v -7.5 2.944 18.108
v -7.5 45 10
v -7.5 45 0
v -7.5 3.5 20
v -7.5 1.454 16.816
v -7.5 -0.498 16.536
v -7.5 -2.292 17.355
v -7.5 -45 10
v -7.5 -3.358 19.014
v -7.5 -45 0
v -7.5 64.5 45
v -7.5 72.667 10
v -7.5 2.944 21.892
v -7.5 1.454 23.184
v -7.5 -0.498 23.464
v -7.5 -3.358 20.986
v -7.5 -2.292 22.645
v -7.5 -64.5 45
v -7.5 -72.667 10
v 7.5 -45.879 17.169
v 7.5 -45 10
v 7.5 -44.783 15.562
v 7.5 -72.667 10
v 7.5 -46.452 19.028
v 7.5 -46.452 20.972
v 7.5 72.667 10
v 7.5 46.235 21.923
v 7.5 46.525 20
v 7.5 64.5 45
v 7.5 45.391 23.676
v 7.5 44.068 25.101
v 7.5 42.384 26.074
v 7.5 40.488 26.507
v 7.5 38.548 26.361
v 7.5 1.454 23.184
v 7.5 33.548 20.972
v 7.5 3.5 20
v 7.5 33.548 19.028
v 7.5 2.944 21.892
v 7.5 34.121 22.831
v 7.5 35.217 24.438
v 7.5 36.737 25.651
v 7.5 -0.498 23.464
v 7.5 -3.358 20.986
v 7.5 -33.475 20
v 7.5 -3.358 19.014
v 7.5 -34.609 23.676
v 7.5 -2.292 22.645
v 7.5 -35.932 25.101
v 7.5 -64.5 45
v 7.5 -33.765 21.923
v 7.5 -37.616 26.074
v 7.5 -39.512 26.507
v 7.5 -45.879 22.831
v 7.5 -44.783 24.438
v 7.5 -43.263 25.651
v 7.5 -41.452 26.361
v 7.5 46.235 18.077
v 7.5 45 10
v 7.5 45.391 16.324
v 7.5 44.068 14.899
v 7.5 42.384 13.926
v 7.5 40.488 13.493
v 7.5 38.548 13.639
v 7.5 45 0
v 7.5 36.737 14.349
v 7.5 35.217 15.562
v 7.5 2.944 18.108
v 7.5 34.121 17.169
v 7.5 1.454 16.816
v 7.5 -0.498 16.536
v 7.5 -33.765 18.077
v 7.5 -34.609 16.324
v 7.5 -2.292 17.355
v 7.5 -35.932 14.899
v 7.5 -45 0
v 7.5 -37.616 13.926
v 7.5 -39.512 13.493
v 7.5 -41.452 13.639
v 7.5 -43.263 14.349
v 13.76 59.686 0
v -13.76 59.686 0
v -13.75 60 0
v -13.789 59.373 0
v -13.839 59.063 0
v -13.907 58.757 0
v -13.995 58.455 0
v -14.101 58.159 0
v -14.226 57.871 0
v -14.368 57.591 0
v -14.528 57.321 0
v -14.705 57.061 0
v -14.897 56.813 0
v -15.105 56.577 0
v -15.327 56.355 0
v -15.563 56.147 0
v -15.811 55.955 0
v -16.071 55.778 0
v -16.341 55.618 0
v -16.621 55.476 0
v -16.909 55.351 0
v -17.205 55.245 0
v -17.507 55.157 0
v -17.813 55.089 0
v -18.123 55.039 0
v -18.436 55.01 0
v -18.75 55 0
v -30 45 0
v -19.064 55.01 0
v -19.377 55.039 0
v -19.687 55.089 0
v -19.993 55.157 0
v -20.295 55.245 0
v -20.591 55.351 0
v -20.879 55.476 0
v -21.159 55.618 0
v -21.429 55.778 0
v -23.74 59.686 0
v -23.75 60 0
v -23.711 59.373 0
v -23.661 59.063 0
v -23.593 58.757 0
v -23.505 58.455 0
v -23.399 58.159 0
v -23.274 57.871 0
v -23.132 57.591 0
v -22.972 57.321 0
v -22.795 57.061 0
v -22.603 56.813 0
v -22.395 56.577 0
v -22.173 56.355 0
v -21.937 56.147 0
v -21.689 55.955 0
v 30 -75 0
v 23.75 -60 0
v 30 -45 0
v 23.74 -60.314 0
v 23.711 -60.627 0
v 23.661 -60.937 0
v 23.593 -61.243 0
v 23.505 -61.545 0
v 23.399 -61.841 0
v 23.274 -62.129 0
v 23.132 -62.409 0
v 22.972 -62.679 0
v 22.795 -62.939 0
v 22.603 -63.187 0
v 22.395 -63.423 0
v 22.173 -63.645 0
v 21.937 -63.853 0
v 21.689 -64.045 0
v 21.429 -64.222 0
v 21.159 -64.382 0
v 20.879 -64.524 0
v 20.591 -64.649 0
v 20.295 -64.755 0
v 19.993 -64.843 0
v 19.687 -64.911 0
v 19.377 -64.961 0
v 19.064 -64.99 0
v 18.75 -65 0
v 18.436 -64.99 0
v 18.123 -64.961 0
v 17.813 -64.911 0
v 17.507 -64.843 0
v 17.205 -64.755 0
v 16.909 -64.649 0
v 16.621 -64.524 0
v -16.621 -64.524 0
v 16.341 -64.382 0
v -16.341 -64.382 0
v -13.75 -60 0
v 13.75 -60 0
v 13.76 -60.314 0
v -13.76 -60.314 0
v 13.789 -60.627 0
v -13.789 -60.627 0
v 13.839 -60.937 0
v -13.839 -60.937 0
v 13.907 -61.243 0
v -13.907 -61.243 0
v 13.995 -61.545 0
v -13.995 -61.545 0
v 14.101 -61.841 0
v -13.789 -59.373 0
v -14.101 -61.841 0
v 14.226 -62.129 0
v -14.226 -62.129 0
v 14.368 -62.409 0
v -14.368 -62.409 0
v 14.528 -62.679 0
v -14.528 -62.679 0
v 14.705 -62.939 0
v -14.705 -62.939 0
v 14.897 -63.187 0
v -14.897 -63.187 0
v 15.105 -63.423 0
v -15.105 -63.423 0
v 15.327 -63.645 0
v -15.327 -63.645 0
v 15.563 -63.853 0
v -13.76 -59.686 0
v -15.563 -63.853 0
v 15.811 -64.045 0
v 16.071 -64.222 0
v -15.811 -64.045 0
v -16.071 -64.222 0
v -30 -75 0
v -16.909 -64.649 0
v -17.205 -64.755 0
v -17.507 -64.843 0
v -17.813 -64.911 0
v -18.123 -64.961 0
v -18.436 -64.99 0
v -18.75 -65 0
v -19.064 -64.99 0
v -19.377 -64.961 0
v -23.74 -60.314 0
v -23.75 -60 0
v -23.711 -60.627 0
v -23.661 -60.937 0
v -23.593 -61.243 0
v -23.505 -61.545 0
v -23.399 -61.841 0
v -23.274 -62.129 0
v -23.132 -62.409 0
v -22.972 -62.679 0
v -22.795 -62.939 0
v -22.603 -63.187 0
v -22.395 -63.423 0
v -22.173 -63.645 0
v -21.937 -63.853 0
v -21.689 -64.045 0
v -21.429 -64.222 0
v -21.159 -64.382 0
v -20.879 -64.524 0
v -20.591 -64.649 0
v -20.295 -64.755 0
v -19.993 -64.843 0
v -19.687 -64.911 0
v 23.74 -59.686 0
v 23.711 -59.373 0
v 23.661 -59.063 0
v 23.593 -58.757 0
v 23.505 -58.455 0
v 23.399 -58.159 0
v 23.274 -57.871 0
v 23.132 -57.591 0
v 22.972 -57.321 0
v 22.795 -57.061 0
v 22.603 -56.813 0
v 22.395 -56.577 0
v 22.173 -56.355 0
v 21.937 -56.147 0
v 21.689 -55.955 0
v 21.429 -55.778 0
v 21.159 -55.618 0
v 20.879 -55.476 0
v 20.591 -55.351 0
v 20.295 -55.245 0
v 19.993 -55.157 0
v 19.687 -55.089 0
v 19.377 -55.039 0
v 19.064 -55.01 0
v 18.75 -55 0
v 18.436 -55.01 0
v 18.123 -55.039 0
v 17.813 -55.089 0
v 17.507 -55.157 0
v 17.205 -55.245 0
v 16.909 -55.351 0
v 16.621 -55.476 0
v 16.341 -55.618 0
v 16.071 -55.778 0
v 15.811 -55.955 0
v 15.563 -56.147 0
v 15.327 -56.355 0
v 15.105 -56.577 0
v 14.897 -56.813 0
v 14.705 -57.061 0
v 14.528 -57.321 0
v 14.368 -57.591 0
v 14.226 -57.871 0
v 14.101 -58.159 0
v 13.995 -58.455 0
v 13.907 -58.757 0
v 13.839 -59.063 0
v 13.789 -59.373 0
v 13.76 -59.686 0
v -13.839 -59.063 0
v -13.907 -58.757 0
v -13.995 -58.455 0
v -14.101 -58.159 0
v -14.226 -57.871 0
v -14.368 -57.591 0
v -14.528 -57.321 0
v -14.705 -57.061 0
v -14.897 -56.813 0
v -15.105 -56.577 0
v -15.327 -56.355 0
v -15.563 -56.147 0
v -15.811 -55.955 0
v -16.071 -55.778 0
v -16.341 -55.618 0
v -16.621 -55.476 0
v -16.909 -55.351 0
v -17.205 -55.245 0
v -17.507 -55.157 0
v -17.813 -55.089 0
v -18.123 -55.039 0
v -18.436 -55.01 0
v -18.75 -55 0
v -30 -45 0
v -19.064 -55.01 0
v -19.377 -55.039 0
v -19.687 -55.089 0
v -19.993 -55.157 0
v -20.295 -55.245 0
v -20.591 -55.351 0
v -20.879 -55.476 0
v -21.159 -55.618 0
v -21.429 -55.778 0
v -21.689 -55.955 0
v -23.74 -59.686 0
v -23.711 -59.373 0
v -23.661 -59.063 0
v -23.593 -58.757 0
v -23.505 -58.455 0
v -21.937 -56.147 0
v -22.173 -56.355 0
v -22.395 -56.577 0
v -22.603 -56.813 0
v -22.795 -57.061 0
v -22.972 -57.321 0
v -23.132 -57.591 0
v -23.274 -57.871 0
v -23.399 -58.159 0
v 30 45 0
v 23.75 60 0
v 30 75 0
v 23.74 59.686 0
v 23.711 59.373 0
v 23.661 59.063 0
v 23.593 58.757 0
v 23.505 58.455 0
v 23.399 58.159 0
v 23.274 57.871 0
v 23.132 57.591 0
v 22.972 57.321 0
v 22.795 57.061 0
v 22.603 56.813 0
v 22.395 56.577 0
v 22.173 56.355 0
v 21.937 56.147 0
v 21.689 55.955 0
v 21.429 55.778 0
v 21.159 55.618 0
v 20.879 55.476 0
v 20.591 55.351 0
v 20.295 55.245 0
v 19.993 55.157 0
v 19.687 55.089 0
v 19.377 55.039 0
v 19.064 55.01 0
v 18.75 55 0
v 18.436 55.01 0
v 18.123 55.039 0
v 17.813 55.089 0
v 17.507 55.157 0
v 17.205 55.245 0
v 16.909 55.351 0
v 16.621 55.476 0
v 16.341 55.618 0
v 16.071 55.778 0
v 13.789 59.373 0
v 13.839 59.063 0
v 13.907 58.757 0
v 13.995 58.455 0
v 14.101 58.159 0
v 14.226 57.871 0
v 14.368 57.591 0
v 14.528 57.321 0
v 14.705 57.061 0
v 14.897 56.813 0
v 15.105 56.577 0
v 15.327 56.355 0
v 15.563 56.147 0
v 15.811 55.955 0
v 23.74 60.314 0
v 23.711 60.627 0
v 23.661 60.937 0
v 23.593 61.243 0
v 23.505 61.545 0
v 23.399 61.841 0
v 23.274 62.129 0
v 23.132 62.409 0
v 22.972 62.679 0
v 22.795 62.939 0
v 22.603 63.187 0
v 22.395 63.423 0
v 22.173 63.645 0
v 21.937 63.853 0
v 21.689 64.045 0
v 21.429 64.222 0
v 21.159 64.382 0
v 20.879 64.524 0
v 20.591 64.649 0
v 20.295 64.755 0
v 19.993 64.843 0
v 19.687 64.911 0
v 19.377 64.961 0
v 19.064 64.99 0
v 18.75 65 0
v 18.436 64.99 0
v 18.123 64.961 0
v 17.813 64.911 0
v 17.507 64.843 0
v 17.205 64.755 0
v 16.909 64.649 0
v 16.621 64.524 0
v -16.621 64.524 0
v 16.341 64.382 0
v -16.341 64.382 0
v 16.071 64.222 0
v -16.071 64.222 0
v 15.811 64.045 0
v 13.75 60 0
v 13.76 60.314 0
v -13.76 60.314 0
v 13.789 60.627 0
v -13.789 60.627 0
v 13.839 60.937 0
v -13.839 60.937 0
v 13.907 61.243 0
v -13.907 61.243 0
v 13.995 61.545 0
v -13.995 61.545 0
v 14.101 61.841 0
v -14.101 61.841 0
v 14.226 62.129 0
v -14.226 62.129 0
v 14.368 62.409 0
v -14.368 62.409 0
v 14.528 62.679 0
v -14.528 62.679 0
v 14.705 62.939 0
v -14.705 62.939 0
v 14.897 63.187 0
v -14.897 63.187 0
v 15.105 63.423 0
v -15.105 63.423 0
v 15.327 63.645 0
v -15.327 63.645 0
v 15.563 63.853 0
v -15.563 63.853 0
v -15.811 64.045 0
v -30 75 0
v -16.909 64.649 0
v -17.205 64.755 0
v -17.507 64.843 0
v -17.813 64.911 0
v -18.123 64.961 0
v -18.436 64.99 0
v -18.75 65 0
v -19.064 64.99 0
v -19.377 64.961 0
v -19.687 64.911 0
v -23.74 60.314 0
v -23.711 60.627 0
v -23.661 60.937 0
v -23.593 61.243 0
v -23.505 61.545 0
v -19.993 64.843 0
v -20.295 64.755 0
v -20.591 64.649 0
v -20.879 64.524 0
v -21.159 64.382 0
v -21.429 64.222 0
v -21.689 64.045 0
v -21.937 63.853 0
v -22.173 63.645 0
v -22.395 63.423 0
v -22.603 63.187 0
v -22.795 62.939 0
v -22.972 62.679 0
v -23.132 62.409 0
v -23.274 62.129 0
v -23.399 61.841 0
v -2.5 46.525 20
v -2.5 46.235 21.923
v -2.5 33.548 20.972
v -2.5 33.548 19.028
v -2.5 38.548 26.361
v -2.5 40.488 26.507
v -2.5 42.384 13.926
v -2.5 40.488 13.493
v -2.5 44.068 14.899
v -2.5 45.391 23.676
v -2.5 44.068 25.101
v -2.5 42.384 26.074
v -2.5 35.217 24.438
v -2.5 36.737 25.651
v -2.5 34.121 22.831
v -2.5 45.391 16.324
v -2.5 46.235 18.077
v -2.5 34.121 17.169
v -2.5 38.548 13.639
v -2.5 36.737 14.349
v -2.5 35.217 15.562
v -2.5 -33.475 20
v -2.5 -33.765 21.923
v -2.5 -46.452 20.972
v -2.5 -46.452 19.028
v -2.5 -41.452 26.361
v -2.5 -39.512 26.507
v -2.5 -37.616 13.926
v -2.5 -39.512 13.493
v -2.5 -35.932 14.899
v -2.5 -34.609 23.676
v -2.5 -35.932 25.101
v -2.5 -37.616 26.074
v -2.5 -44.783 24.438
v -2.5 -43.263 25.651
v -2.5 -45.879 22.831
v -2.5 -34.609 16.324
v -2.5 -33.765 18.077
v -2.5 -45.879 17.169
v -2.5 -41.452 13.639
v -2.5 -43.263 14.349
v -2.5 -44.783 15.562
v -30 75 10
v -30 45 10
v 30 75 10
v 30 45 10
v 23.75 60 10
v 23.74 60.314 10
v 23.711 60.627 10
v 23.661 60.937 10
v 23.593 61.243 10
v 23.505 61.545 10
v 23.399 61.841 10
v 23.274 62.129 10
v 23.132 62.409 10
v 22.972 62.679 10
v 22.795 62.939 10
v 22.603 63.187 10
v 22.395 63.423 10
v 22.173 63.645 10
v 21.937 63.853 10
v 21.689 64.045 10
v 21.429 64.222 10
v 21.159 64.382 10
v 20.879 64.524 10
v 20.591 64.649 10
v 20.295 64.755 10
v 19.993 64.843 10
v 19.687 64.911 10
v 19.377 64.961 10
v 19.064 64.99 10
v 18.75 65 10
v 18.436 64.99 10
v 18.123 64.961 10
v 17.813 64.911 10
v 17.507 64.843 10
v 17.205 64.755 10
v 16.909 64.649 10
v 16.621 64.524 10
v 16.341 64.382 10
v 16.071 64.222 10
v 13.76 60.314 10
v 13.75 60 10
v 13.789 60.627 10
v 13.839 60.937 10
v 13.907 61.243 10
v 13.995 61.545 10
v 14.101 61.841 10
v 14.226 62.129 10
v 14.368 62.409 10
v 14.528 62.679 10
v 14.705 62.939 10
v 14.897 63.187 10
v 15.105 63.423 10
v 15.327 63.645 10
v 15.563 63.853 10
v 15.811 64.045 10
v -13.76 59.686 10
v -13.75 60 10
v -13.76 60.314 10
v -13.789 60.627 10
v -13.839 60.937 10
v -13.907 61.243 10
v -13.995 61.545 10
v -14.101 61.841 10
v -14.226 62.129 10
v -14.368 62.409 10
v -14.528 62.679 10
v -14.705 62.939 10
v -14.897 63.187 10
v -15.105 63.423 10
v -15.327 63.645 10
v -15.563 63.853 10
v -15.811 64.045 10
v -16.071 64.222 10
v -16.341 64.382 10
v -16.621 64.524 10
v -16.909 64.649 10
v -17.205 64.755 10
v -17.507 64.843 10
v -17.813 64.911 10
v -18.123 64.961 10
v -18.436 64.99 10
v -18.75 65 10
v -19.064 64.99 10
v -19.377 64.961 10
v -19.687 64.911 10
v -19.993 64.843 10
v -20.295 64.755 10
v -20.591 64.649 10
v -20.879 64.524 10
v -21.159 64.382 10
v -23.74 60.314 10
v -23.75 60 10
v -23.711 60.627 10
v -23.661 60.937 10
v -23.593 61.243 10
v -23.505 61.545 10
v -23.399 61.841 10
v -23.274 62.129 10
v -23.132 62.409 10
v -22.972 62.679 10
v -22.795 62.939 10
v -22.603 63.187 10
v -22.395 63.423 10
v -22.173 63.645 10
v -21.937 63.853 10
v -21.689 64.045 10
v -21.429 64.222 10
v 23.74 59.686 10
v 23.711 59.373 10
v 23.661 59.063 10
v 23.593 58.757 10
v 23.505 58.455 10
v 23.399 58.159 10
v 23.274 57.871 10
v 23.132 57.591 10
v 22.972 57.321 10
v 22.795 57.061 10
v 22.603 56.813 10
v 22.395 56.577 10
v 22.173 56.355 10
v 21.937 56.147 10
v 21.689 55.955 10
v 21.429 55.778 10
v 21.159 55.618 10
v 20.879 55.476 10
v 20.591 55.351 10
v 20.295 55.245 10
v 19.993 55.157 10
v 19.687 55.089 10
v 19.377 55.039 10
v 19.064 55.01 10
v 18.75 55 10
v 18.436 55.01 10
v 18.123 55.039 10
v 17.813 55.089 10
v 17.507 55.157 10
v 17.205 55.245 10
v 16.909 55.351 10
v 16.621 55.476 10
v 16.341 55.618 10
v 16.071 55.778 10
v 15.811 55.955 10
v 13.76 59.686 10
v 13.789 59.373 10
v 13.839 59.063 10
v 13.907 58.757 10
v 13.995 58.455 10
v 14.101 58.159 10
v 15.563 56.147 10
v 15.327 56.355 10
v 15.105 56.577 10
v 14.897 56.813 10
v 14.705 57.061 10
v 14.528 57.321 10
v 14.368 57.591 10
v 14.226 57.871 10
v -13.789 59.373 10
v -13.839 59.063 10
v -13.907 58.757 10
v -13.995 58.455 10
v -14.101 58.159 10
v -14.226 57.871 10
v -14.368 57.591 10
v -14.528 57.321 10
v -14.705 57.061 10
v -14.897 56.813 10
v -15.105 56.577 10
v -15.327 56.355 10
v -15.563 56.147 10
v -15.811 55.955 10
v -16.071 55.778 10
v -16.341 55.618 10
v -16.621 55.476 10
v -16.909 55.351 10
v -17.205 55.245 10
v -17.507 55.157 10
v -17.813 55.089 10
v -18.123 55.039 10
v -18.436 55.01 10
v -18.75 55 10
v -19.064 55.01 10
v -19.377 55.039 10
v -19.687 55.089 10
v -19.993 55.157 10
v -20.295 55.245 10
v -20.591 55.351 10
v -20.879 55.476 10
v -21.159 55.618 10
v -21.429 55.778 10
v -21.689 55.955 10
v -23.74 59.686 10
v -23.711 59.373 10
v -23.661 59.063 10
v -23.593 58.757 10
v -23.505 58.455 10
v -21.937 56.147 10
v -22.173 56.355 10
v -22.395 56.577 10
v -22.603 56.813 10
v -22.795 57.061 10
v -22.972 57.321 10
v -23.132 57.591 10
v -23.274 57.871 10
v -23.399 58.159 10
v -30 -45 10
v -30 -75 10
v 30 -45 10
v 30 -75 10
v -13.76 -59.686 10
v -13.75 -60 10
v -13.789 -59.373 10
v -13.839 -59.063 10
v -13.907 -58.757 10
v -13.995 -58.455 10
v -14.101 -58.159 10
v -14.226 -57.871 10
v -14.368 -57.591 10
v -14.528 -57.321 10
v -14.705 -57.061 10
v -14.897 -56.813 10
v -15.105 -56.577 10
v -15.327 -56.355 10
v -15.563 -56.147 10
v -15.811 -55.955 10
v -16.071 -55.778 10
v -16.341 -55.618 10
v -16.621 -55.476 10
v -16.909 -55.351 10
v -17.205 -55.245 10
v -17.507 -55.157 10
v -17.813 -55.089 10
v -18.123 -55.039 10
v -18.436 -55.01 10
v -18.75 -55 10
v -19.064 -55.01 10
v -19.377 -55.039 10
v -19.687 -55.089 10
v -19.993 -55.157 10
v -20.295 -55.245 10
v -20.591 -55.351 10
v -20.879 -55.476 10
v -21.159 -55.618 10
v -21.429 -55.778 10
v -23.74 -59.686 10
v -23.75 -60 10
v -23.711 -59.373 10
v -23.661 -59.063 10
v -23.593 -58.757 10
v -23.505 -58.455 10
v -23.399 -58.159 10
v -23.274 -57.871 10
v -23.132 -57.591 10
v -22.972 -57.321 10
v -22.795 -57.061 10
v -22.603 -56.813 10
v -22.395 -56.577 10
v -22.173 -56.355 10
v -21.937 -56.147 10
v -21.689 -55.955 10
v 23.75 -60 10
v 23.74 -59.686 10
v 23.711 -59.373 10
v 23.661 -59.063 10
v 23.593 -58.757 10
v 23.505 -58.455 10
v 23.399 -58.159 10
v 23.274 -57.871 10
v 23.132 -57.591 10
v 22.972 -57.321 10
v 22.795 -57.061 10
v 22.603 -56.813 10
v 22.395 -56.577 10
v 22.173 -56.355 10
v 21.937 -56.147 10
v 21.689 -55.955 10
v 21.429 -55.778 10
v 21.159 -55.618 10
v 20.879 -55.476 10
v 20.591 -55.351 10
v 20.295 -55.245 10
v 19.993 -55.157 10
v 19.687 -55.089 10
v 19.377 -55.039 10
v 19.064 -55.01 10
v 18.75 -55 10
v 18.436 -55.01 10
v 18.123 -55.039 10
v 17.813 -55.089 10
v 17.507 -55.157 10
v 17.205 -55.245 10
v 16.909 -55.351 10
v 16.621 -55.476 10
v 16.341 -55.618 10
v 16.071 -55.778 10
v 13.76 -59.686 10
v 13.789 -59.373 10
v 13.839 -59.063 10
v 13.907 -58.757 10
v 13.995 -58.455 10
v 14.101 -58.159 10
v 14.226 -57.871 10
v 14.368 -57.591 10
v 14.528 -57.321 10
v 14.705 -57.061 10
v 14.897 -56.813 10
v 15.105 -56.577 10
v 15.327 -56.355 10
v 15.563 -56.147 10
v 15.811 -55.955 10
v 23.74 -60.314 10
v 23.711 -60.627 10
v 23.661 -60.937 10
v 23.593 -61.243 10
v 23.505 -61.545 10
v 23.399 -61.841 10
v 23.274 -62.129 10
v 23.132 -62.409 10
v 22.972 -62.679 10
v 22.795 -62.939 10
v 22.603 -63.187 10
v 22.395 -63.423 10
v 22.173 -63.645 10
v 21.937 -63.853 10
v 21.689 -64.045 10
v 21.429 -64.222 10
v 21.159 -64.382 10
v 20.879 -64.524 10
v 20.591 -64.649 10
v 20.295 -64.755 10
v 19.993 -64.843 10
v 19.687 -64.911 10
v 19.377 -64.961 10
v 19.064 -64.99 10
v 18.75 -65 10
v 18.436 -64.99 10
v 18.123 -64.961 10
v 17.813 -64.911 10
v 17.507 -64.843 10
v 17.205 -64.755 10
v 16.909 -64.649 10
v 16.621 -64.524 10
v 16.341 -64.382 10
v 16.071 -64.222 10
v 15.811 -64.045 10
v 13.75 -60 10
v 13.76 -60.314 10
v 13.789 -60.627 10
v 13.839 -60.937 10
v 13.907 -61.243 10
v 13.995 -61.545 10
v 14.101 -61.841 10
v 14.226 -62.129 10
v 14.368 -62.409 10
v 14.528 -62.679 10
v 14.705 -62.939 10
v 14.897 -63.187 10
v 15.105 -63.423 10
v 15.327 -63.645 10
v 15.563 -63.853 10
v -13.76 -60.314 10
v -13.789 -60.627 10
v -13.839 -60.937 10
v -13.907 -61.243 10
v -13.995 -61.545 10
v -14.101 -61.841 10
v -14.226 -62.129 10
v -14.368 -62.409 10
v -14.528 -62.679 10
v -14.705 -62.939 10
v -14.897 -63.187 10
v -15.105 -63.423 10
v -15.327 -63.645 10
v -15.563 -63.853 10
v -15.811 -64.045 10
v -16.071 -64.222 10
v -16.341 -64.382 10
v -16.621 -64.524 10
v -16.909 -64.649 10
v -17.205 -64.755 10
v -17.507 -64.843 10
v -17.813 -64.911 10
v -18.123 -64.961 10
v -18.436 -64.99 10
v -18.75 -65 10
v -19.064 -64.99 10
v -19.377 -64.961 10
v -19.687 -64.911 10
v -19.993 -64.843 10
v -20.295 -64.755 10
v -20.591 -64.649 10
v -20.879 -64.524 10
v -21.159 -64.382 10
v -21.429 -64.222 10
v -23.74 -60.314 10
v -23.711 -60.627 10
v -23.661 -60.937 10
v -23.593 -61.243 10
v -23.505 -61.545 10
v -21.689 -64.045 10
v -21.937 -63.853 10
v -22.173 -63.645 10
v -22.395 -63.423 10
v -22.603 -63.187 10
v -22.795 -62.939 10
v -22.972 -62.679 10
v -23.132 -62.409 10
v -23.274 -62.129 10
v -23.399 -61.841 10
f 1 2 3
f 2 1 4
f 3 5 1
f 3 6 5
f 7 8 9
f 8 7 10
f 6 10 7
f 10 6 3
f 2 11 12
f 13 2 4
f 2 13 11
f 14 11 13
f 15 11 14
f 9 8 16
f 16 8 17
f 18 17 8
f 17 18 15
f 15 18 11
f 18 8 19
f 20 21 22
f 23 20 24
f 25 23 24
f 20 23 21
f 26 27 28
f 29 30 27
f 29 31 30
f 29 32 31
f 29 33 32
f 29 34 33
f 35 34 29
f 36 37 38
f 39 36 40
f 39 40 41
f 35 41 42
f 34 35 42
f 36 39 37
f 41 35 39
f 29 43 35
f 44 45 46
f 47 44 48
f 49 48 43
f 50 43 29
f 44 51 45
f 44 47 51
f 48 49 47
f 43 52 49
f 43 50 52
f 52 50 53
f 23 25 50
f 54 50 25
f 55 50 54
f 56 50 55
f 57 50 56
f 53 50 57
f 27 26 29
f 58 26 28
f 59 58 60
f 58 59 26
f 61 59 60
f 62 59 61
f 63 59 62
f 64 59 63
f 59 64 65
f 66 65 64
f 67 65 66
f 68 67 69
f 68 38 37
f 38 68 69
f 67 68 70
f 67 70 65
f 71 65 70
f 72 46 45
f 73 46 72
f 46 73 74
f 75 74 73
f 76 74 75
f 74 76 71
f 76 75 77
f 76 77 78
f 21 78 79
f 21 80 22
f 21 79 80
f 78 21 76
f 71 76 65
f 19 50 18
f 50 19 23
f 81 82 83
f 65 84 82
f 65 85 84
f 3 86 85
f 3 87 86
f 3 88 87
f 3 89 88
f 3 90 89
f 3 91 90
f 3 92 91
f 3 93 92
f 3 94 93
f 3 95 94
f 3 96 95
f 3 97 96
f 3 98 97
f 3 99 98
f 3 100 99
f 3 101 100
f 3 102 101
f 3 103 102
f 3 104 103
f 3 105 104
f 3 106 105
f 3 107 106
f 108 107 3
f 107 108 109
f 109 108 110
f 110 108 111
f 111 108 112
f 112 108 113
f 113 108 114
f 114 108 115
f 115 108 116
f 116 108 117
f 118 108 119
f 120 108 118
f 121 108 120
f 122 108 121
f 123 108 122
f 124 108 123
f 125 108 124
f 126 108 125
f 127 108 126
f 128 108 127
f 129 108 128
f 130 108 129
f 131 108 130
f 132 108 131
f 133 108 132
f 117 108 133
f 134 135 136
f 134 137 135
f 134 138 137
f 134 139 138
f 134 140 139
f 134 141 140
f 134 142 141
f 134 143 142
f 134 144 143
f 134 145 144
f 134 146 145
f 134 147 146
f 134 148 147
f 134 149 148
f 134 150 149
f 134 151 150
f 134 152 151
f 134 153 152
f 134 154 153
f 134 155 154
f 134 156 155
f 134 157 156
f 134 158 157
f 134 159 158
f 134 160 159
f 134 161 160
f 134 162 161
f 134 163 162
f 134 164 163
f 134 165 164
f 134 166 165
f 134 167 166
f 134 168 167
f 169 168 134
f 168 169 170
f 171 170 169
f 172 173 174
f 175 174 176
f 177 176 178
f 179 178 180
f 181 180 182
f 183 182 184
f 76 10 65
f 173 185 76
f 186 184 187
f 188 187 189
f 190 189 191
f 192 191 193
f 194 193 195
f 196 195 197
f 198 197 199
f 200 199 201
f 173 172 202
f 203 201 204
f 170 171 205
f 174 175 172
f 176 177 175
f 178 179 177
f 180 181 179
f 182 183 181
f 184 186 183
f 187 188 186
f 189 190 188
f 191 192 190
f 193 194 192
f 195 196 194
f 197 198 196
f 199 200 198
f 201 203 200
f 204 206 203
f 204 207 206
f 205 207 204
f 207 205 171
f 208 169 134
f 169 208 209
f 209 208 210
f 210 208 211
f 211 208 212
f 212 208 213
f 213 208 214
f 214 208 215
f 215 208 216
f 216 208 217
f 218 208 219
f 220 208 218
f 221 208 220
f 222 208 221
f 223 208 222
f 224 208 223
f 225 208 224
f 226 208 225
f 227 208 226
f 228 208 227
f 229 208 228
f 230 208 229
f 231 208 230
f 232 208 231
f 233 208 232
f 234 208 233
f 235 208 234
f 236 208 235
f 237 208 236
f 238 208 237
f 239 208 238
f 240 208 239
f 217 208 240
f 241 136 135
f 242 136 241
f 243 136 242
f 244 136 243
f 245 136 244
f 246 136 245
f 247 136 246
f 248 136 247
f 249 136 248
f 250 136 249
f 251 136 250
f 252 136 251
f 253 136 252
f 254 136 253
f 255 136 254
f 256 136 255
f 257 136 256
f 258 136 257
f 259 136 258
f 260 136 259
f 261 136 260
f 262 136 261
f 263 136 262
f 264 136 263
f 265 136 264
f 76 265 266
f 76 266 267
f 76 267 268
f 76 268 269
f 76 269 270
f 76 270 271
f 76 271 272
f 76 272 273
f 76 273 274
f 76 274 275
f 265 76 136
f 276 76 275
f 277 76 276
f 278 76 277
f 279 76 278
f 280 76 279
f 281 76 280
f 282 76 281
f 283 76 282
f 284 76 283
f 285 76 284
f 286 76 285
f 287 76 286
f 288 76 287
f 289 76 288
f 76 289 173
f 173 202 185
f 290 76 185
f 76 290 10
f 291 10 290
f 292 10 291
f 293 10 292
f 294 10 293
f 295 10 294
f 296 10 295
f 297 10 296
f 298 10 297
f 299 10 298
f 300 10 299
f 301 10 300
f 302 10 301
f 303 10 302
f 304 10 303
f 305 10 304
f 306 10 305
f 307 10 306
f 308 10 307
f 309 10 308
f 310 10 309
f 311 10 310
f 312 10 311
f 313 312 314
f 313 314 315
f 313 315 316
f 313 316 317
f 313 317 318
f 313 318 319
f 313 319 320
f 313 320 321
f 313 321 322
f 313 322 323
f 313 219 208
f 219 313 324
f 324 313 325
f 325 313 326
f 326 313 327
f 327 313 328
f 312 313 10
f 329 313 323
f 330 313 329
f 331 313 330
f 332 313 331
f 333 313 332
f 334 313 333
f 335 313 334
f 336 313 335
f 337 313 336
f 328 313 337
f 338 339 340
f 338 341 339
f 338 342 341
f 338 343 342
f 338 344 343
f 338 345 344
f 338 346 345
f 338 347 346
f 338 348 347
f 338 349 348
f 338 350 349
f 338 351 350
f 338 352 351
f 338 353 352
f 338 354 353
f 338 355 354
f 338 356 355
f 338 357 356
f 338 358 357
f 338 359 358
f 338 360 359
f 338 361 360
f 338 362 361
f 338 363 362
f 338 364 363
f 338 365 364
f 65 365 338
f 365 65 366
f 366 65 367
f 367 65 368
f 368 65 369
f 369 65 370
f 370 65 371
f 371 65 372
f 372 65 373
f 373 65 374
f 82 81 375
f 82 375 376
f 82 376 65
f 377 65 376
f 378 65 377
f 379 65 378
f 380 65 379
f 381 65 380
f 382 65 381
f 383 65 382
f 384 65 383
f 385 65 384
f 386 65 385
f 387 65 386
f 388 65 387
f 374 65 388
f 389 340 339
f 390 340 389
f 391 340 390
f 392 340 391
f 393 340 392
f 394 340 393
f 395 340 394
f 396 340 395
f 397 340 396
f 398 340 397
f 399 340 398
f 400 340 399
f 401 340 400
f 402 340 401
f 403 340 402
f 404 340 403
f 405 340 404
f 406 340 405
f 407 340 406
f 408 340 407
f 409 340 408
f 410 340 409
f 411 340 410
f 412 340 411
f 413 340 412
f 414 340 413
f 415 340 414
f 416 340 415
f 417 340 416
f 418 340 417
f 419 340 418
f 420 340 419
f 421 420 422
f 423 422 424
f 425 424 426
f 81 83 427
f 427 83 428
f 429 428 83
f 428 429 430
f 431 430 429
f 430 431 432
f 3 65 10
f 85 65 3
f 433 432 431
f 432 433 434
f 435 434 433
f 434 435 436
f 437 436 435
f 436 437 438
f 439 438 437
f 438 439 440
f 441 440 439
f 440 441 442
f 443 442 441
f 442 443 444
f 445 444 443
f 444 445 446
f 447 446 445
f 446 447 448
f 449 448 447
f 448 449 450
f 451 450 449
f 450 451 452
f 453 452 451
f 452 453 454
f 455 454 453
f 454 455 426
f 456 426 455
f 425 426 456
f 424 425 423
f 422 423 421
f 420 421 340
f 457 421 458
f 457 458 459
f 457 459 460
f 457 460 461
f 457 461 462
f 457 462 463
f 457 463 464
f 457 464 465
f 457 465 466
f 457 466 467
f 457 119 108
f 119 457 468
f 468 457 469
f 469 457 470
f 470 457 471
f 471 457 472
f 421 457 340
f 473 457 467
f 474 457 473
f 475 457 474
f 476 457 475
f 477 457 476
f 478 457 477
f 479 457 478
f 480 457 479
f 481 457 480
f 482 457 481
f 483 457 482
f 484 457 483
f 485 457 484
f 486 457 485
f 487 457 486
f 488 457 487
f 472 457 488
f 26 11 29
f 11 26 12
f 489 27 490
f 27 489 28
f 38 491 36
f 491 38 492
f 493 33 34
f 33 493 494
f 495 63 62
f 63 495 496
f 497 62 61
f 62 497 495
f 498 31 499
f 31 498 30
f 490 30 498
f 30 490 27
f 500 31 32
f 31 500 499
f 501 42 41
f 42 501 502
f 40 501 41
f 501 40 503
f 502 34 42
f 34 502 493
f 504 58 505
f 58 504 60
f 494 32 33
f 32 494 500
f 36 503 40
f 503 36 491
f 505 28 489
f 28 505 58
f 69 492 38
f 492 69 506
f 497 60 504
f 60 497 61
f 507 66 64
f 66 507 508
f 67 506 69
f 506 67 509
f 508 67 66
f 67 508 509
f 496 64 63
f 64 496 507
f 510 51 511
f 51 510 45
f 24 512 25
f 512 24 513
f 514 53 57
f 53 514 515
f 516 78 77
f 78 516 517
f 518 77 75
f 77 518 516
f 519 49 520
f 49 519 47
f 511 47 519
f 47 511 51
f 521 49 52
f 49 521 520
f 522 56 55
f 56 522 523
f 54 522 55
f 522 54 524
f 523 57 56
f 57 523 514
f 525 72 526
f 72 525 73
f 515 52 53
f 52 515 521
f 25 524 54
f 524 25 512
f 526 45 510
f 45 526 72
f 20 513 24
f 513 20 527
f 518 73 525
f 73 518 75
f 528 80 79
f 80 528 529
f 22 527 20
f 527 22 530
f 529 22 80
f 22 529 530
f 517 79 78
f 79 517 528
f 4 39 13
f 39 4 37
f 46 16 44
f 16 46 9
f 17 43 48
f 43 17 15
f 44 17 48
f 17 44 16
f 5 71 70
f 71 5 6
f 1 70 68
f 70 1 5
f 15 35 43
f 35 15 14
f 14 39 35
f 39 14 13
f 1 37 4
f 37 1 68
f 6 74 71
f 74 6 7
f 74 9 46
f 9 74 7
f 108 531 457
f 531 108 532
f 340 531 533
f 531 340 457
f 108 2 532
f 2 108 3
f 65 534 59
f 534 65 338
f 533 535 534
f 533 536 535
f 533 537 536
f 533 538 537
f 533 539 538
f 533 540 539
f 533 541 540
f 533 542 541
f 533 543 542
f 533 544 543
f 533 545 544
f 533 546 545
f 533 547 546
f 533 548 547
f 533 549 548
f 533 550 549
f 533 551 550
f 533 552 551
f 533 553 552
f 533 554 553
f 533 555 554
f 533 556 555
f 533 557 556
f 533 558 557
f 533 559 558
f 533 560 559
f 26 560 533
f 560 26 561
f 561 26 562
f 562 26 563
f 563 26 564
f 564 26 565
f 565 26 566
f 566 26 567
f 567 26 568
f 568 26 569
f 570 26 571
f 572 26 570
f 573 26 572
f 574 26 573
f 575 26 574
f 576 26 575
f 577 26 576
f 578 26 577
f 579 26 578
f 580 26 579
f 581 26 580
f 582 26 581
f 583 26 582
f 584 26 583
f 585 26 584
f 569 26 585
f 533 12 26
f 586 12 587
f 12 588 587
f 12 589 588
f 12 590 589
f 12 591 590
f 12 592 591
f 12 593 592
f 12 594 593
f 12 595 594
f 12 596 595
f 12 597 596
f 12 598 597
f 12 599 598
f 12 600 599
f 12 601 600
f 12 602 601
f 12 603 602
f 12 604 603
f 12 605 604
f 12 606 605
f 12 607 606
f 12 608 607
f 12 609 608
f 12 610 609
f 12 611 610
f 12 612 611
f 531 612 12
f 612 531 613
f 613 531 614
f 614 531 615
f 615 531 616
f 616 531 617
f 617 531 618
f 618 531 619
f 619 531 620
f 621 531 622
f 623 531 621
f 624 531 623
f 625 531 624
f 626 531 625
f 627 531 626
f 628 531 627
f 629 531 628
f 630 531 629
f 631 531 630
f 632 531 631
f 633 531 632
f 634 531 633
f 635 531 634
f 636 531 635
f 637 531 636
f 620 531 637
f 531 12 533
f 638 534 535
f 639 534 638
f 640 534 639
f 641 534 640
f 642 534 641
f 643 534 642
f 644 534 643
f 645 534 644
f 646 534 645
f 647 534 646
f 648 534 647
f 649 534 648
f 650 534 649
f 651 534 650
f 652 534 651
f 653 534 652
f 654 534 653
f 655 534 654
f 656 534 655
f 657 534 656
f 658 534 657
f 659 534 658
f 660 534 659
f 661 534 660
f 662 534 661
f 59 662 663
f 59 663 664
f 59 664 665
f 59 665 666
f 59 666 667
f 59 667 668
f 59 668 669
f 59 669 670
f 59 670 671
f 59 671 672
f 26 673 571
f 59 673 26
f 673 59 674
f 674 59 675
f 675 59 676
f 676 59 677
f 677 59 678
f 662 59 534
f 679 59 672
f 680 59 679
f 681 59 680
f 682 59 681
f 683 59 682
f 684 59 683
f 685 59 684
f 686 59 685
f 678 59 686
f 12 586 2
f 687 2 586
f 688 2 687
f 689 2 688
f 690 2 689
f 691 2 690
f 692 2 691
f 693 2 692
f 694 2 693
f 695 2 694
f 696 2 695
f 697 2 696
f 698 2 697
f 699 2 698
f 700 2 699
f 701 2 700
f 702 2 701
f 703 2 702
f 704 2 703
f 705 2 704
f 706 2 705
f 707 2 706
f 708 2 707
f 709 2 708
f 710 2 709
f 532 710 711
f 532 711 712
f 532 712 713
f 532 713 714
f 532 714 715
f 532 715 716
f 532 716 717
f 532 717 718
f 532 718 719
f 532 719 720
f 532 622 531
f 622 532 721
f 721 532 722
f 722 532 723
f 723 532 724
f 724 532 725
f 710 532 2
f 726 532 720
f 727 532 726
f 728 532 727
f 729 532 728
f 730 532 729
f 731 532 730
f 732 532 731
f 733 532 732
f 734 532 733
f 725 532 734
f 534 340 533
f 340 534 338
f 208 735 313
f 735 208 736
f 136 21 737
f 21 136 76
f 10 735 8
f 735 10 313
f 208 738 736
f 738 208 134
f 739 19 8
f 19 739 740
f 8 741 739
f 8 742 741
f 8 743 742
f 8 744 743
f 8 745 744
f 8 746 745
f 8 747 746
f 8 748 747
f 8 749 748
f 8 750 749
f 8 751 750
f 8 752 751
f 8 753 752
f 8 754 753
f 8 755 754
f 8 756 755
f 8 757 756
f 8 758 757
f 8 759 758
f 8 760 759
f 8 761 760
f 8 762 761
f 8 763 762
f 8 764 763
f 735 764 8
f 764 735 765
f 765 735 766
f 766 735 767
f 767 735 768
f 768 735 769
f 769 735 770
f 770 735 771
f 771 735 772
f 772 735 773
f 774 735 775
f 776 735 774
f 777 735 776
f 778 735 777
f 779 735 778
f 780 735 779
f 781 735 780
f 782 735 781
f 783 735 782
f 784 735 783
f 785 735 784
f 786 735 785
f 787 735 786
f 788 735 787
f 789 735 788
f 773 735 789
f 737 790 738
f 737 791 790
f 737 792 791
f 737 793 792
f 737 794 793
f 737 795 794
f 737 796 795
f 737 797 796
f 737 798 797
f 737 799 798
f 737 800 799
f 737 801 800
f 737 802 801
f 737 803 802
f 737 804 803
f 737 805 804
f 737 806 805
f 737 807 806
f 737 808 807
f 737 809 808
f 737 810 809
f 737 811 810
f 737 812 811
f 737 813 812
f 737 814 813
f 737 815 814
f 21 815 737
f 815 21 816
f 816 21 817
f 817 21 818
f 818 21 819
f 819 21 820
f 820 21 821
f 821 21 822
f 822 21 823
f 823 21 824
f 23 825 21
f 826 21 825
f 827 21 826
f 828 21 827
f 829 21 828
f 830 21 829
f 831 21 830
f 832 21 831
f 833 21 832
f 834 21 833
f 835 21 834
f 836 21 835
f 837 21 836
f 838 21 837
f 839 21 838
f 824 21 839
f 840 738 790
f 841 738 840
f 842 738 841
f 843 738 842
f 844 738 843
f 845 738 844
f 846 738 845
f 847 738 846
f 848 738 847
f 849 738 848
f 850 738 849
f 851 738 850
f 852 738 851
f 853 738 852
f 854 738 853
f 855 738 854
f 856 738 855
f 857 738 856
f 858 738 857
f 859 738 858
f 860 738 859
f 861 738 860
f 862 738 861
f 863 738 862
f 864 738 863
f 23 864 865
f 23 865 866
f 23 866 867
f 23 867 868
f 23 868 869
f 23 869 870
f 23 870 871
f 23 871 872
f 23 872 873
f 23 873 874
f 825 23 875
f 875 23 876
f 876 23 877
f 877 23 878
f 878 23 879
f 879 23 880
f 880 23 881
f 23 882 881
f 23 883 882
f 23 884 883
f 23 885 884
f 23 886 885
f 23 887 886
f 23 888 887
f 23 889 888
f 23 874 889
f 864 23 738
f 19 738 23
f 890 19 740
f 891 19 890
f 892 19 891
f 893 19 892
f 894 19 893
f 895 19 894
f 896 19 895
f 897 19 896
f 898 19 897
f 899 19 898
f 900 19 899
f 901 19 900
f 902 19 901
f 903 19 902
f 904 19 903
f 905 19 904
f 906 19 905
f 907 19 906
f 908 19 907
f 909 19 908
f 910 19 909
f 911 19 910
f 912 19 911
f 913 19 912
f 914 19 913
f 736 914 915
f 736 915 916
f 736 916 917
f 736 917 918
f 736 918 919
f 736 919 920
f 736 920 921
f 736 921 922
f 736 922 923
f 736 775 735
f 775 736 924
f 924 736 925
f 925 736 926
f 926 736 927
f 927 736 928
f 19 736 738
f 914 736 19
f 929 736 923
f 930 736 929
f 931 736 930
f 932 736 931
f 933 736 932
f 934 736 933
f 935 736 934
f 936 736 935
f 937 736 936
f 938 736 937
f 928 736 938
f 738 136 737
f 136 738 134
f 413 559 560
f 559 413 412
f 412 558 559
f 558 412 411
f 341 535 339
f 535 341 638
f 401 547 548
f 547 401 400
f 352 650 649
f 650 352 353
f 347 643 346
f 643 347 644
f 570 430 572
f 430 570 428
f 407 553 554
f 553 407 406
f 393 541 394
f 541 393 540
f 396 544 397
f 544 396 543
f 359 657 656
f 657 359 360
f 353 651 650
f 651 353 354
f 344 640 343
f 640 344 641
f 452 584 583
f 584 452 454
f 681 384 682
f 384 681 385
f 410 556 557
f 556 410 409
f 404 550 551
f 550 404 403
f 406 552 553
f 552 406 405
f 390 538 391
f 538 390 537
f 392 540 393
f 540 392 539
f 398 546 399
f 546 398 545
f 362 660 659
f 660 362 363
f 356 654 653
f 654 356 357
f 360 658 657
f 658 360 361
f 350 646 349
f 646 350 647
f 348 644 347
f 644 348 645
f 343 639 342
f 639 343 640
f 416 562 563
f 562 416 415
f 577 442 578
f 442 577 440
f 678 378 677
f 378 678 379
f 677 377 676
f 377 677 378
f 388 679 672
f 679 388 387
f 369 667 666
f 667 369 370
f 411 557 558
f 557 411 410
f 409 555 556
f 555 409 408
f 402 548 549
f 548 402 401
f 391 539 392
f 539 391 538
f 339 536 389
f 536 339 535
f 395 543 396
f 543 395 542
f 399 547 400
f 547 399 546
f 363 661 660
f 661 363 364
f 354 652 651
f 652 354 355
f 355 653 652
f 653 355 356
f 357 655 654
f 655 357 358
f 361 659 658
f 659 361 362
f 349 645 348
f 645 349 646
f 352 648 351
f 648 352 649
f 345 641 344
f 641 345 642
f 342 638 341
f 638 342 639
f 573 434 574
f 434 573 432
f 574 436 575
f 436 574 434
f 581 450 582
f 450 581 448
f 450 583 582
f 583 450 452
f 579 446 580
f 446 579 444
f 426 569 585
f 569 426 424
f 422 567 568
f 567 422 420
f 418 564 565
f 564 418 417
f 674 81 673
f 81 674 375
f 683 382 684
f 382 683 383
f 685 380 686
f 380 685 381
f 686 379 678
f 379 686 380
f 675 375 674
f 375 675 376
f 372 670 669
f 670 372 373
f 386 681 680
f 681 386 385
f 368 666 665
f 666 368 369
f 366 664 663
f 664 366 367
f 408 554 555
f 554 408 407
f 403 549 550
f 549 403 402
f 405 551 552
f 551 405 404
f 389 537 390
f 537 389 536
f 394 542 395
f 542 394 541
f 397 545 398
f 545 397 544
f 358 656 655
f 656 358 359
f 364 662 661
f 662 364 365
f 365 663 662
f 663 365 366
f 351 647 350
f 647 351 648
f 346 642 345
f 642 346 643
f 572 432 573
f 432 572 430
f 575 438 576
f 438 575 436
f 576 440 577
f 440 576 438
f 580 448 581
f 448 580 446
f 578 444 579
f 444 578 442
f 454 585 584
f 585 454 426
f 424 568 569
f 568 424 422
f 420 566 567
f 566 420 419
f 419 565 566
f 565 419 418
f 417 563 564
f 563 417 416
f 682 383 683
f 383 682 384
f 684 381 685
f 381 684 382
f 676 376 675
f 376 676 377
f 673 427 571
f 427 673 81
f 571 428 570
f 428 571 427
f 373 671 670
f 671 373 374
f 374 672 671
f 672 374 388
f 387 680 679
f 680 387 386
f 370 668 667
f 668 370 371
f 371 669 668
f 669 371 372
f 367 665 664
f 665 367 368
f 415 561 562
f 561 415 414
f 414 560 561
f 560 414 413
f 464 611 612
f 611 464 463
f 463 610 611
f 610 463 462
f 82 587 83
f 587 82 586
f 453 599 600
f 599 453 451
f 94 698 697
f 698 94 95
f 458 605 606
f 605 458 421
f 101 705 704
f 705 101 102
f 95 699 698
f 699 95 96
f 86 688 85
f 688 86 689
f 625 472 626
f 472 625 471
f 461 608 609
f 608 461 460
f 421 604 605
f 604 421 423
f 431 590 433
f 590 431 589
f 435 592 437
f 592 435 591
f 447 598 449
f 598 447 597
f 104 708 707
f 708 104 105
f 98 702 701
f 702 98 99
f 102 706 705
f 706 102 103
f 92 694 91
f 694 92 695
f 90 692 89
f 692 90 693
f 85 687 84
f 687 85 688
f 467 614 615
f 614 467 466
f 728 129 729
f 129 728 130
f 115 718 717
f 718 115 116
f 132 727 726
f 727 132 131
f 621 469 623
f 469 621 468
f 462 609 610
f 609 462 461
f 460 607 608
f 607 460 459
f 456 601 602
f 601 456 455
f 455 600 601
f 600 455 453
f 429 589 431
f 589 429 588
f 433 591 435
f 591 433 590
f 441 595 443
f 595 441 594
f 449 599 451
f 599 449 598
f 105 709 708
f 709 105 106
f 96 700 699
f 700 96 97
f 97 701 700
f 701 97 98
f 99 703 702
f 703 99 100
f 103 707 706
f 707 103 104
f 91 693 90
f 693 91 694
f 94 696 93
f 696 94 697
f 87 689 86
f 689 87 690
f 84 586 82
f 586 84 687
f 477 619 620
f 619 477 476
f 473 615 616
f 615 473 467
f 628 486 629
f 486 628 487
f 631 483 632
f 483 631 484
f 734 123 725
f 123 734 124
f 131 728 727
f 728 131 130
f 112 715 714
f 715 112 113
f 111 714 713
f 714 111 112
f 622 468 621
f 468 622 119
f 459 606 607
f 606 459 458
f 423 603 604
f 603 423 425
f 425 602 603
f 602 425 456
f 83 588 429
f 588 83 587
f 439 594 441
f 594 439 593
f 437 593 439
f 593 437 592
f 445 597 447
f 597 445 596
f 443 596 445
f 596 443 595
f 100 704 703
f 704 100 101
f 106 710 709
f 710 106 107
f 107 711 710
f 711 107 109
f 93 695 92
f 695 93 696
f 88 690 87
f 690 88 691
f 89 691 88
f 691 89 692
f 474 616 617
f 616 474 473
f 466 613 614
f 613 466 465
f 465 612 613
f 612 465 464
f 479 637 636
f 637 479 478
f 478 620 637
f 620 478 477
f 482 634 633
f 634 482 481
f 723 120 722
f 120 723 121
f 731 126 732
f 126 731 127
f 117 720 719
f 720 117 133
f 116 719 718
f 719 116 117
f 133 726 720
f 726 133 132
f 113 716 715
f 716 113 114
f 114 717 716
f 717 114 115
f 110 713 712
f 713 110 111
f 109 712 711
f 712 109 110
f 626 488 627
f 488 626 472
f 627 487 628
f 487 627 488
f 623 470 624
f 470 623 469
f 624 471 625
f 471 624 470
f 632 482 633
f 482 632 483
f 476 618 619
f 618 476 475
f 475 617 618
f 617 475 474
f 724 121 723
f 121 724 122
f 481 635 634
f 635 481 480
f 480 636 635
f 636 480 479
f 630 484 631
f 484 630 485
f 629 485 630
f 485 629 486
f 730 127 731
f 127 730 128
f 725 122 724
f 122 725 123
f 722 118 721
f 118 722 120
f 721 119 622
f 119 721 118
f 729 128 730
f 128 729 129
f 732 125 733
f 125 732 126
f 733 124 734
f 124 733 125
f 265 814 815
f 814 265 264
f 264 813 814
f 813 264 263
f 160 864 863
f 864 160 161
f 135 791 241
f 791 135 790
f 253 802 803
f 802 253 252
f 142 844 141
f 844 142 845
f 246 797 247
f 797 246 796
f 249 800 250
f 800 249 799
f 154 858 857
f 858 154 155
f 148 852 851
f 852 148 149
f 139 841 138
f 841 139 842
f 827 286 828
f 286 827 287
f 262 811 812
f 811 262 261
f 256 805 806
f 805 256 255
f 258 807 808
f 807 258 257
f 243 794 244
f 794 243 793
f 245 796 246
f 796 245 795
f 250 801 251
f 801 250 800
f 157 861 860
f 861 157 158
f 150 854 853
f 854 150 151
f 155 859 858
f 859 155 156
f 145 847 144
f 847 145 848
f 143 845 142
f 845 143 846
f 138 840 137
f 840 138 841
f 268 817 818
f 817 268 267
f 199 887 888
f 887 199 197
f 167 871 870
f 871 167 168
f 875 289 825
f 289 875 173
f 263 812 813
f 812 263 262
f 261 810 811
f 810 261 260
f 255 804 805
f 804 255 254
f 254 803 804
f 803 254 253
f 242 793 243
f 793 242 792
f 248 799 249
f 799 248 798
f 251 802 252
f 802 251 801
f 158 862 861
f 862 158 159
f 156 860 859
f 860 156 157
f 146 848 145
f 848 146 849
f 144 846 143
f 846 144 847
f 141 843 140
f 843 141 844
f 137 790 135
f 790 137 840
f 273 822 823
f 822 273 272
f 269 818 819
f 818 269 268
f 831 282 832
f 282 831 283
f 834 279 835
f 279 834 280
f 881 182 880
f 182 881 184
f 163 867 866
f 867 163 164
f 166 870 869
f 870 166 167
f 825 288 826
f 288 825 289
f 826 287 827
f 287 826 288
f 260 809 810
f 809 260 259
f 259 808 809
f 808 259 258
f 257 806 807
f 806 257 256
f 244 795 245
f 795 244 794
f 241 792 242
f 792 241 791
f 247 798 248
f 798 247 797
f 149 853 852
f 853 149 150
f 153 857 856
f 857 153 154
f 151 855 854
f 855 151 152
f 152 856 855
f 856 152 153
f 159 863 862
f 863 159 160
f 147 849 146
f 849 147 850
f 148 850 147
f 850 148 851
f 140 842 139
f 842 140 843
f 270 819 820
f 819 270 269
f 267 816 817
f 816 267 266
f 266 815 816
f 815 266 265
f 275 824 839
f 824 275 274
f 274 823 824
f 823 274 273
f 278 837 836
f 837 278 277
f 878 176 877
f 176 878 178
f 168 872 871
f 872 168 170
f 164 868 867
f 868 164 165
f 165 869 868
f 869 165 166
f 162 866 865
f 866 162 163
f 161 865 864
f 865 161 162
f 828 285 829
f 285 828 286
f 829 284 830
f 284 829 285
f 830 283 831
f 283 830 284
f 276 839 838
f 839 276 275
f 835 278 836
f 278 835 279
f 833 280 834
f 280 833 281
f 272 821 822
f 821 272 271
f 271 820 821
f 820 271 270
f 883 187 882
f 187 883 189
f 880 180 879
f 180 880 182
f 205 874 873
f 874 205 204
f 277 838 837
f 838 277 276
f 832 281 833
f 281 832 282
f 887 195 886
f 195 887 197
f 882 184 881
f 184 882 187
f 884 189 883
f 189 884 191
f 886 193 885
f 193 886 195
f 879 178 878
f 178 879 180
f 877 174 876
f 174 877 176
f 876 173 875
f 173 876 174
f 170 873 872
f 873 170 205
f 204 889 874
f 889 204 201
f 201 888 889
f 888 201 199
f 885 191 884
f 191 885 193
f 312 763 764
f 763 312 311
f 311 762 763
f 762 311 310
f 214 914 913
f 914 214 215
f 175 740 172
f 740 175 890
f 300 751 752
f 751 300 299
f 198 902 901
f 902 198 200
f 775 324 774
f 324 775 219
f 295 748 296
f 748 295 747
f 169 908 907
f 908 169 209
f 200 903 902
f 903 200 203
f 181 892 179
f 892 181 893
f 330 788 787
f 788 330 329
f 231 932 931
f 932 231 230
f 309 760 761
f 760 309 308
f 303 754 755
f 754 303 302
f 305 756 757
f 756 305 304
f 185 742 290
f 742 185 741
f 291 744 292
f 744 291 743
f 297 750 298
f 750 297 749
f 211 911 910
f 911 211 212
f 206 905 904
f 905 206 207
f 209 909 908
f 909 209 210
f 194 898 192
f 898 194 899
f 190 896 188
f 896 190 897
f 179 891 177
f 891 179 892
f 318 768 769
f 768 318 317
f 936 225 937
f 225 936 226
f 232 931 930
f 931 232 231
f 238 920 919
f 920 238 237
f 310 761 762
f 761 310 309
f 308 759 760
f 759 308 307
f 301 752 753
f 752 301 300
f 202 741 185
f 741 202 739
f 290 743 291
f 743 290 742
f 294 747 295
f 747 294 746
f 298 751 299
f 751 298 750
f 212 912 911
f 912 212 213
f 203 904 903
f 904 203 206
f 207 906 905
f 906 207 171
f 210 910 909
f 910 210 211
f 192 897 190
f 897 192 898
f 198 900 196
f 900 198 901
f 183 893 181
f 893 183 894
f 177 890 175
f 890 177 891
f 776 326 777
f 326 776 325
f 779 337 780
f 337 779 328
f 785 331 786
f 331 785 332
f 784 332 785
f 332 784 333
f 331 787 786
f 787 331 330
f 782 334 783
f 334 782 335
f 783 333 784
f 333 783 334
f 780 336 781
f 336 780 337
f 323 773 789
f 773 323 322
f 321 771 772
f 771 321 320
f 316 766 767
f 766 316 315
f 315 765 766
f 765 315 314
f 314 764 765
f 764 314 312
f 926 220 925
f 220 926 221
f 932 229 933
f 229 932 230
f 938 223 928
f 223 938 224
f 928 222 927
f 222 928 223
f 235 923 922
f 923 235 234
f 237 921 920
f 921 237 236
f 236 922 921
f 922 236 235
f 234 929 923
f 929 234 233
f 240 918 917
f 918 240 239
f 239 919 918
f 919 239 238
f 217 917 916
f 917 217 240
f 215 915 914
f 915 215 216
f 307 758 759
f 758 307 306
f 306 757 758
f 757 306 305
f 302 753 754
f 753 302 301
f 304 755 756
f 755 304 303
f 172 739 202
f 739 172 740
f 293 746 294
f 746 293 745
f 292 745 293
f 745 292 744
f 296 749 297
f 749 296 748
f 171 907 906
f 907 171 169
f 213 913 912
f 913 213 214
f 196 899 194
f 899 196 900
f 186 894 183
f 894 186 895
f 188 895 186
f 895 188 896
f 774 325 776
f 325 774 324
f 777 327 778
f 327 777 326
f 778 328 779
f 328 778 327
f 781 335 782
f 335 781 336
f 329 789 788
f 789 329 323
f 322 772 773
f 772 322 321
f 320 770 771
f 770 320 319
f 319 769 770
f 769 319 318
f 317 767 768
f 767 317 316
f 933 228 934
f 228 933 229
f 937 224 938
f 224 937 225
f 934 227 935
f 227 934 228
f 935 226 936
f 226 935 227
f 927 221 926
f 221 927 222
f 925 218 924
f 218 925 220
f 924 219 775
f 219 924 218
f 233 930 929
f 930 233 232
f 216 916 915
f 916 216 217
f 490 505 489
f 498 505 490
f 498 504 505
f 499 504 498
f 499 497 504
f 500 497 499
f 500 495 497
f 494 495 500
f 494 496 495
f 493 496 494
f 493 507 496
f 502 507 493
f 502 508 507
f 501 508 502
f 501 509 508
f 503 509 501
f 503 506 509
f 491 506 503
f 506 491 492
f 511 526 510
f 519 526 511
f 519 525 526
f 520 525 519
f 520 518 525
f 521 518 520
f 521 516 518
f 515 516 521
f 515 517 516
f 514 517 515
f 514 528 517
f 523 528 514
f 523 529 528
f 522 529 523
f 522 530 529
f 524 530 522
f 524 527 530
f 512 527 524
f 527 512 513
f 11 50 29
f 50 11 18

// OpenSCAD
mainbearinghole_radius = 15;
guiderod_hole_radius = 13.05/2;
tailstock_thread_hole_radius = 3.5;

bodyheight = 150;
body_support_notch_height = bodyheight-10;
basewidth = 150;
topwidth = 40;
notchwidth = topwidth-10;
depth = 15;
tablength = 4*depth;

Mount_Tab_Width= 30;
difference(){
rotate([90,0,90]){ 
   
difference(){ 
union(){
translate([basewidth/2-35,20,-depth/2]){
cylinder(h=5,r=guiderod_hole_radius);
}

translate([-(basewidth/2-35),20,-depth/2]){
cylinder(h=5,r=guiderod_hole_radius);
}

//Main shape of the body
difference(){
union(){
difference(){
linear_extrude(height = depth, scale = 1, center=true){
    polygon( points=[[basewidth/2,0],[-basewidth/2,0],[-topwidth,bodyheight],[-notchwidth,bodyheight],[-30,body_support_notch_height],[notchwidth,body_support_notch_height],[notchwidth,bodyheight],[topwidth,bodyheight]]);
}



//Guide Rod Holes
translate([basewidth/2-35,20,-depth]){
cylinder(h=depth*2,r=guiderod_hole_radius);
}

translate([-(basewidth/2-35),20,-depth]){
cylinder(h=depth*2,r=guiderod_hole_radius);
}

//Bearing Hole

translate([0,bodyheight-70,-depth]){
cylinder(h=depth*2,r=mainbearinghole_radius);
}

// Hole for Threaded Rod

translate([0,20,-depth]){
    cylinder(h = depth*2, r=tailstock_thread_hole_radius);
}



// Lockingholes for Top Piece
translate([notchwidth-10,body_support_notch_height-5,-depth]){
    cylinder(h = depth*2, r=2);
}

translate([-(notchwidth-10),body_support_notch_height-5,-depth]){
    cylinder(h = depth*2, r=2);
}
}

//Mounting Tabs
translate([(basewidth/2)-Mount_Tab_Width,0,(-tablength/2)]){
    linear_extrude(height = tablength)
               square([Mount_Tab_Width, 10]);
}

translate([(-basewidth/2),0,(-tablength/2)]){
    linear_extrude(height = tablength)
               square([Mount_Tab_Width, 10]);
}
}


//MountHoles
rotate([90,0,0]){
    translate([(basewidth/2-Mount_Tab_Width/2),(((tablength/2)-(depth/2))/2 + depth/2),0])
        cylinder(h=30,r=5, center=true,$fn=100);
}

rotate([90,0,0]){
    translate([(basewidth/2-Mount_Tab_Width/2),-(((tablength/2)-(depth/2))/2 + depth/2),0])
        cylinder(h=30,r=5, center=true,$fn=100);
}

rotate([90,0,0]){
    translate([(-(basewidth/2-Mount_Tab_Width/2)),(((tablength/2)-(depth/2))/2 + depth/2),0])
        cylinder(h=30,r=5, center=true,$fn=100);
}

rotate([90,0,0]){
    translate([(-(basewidth/2-Mount_Tab_Width/2)),-(((tablength/2)-(depth/2))/2 + depth/2),0])
        cylinder(h=30,r=5, center=true,$fn=100);
}

}


//Rear Supports



  
}
// Literally Triangulating the Supports

}



}

translate([0,0,120])
cube([150,150,150], center=true);
 } 
